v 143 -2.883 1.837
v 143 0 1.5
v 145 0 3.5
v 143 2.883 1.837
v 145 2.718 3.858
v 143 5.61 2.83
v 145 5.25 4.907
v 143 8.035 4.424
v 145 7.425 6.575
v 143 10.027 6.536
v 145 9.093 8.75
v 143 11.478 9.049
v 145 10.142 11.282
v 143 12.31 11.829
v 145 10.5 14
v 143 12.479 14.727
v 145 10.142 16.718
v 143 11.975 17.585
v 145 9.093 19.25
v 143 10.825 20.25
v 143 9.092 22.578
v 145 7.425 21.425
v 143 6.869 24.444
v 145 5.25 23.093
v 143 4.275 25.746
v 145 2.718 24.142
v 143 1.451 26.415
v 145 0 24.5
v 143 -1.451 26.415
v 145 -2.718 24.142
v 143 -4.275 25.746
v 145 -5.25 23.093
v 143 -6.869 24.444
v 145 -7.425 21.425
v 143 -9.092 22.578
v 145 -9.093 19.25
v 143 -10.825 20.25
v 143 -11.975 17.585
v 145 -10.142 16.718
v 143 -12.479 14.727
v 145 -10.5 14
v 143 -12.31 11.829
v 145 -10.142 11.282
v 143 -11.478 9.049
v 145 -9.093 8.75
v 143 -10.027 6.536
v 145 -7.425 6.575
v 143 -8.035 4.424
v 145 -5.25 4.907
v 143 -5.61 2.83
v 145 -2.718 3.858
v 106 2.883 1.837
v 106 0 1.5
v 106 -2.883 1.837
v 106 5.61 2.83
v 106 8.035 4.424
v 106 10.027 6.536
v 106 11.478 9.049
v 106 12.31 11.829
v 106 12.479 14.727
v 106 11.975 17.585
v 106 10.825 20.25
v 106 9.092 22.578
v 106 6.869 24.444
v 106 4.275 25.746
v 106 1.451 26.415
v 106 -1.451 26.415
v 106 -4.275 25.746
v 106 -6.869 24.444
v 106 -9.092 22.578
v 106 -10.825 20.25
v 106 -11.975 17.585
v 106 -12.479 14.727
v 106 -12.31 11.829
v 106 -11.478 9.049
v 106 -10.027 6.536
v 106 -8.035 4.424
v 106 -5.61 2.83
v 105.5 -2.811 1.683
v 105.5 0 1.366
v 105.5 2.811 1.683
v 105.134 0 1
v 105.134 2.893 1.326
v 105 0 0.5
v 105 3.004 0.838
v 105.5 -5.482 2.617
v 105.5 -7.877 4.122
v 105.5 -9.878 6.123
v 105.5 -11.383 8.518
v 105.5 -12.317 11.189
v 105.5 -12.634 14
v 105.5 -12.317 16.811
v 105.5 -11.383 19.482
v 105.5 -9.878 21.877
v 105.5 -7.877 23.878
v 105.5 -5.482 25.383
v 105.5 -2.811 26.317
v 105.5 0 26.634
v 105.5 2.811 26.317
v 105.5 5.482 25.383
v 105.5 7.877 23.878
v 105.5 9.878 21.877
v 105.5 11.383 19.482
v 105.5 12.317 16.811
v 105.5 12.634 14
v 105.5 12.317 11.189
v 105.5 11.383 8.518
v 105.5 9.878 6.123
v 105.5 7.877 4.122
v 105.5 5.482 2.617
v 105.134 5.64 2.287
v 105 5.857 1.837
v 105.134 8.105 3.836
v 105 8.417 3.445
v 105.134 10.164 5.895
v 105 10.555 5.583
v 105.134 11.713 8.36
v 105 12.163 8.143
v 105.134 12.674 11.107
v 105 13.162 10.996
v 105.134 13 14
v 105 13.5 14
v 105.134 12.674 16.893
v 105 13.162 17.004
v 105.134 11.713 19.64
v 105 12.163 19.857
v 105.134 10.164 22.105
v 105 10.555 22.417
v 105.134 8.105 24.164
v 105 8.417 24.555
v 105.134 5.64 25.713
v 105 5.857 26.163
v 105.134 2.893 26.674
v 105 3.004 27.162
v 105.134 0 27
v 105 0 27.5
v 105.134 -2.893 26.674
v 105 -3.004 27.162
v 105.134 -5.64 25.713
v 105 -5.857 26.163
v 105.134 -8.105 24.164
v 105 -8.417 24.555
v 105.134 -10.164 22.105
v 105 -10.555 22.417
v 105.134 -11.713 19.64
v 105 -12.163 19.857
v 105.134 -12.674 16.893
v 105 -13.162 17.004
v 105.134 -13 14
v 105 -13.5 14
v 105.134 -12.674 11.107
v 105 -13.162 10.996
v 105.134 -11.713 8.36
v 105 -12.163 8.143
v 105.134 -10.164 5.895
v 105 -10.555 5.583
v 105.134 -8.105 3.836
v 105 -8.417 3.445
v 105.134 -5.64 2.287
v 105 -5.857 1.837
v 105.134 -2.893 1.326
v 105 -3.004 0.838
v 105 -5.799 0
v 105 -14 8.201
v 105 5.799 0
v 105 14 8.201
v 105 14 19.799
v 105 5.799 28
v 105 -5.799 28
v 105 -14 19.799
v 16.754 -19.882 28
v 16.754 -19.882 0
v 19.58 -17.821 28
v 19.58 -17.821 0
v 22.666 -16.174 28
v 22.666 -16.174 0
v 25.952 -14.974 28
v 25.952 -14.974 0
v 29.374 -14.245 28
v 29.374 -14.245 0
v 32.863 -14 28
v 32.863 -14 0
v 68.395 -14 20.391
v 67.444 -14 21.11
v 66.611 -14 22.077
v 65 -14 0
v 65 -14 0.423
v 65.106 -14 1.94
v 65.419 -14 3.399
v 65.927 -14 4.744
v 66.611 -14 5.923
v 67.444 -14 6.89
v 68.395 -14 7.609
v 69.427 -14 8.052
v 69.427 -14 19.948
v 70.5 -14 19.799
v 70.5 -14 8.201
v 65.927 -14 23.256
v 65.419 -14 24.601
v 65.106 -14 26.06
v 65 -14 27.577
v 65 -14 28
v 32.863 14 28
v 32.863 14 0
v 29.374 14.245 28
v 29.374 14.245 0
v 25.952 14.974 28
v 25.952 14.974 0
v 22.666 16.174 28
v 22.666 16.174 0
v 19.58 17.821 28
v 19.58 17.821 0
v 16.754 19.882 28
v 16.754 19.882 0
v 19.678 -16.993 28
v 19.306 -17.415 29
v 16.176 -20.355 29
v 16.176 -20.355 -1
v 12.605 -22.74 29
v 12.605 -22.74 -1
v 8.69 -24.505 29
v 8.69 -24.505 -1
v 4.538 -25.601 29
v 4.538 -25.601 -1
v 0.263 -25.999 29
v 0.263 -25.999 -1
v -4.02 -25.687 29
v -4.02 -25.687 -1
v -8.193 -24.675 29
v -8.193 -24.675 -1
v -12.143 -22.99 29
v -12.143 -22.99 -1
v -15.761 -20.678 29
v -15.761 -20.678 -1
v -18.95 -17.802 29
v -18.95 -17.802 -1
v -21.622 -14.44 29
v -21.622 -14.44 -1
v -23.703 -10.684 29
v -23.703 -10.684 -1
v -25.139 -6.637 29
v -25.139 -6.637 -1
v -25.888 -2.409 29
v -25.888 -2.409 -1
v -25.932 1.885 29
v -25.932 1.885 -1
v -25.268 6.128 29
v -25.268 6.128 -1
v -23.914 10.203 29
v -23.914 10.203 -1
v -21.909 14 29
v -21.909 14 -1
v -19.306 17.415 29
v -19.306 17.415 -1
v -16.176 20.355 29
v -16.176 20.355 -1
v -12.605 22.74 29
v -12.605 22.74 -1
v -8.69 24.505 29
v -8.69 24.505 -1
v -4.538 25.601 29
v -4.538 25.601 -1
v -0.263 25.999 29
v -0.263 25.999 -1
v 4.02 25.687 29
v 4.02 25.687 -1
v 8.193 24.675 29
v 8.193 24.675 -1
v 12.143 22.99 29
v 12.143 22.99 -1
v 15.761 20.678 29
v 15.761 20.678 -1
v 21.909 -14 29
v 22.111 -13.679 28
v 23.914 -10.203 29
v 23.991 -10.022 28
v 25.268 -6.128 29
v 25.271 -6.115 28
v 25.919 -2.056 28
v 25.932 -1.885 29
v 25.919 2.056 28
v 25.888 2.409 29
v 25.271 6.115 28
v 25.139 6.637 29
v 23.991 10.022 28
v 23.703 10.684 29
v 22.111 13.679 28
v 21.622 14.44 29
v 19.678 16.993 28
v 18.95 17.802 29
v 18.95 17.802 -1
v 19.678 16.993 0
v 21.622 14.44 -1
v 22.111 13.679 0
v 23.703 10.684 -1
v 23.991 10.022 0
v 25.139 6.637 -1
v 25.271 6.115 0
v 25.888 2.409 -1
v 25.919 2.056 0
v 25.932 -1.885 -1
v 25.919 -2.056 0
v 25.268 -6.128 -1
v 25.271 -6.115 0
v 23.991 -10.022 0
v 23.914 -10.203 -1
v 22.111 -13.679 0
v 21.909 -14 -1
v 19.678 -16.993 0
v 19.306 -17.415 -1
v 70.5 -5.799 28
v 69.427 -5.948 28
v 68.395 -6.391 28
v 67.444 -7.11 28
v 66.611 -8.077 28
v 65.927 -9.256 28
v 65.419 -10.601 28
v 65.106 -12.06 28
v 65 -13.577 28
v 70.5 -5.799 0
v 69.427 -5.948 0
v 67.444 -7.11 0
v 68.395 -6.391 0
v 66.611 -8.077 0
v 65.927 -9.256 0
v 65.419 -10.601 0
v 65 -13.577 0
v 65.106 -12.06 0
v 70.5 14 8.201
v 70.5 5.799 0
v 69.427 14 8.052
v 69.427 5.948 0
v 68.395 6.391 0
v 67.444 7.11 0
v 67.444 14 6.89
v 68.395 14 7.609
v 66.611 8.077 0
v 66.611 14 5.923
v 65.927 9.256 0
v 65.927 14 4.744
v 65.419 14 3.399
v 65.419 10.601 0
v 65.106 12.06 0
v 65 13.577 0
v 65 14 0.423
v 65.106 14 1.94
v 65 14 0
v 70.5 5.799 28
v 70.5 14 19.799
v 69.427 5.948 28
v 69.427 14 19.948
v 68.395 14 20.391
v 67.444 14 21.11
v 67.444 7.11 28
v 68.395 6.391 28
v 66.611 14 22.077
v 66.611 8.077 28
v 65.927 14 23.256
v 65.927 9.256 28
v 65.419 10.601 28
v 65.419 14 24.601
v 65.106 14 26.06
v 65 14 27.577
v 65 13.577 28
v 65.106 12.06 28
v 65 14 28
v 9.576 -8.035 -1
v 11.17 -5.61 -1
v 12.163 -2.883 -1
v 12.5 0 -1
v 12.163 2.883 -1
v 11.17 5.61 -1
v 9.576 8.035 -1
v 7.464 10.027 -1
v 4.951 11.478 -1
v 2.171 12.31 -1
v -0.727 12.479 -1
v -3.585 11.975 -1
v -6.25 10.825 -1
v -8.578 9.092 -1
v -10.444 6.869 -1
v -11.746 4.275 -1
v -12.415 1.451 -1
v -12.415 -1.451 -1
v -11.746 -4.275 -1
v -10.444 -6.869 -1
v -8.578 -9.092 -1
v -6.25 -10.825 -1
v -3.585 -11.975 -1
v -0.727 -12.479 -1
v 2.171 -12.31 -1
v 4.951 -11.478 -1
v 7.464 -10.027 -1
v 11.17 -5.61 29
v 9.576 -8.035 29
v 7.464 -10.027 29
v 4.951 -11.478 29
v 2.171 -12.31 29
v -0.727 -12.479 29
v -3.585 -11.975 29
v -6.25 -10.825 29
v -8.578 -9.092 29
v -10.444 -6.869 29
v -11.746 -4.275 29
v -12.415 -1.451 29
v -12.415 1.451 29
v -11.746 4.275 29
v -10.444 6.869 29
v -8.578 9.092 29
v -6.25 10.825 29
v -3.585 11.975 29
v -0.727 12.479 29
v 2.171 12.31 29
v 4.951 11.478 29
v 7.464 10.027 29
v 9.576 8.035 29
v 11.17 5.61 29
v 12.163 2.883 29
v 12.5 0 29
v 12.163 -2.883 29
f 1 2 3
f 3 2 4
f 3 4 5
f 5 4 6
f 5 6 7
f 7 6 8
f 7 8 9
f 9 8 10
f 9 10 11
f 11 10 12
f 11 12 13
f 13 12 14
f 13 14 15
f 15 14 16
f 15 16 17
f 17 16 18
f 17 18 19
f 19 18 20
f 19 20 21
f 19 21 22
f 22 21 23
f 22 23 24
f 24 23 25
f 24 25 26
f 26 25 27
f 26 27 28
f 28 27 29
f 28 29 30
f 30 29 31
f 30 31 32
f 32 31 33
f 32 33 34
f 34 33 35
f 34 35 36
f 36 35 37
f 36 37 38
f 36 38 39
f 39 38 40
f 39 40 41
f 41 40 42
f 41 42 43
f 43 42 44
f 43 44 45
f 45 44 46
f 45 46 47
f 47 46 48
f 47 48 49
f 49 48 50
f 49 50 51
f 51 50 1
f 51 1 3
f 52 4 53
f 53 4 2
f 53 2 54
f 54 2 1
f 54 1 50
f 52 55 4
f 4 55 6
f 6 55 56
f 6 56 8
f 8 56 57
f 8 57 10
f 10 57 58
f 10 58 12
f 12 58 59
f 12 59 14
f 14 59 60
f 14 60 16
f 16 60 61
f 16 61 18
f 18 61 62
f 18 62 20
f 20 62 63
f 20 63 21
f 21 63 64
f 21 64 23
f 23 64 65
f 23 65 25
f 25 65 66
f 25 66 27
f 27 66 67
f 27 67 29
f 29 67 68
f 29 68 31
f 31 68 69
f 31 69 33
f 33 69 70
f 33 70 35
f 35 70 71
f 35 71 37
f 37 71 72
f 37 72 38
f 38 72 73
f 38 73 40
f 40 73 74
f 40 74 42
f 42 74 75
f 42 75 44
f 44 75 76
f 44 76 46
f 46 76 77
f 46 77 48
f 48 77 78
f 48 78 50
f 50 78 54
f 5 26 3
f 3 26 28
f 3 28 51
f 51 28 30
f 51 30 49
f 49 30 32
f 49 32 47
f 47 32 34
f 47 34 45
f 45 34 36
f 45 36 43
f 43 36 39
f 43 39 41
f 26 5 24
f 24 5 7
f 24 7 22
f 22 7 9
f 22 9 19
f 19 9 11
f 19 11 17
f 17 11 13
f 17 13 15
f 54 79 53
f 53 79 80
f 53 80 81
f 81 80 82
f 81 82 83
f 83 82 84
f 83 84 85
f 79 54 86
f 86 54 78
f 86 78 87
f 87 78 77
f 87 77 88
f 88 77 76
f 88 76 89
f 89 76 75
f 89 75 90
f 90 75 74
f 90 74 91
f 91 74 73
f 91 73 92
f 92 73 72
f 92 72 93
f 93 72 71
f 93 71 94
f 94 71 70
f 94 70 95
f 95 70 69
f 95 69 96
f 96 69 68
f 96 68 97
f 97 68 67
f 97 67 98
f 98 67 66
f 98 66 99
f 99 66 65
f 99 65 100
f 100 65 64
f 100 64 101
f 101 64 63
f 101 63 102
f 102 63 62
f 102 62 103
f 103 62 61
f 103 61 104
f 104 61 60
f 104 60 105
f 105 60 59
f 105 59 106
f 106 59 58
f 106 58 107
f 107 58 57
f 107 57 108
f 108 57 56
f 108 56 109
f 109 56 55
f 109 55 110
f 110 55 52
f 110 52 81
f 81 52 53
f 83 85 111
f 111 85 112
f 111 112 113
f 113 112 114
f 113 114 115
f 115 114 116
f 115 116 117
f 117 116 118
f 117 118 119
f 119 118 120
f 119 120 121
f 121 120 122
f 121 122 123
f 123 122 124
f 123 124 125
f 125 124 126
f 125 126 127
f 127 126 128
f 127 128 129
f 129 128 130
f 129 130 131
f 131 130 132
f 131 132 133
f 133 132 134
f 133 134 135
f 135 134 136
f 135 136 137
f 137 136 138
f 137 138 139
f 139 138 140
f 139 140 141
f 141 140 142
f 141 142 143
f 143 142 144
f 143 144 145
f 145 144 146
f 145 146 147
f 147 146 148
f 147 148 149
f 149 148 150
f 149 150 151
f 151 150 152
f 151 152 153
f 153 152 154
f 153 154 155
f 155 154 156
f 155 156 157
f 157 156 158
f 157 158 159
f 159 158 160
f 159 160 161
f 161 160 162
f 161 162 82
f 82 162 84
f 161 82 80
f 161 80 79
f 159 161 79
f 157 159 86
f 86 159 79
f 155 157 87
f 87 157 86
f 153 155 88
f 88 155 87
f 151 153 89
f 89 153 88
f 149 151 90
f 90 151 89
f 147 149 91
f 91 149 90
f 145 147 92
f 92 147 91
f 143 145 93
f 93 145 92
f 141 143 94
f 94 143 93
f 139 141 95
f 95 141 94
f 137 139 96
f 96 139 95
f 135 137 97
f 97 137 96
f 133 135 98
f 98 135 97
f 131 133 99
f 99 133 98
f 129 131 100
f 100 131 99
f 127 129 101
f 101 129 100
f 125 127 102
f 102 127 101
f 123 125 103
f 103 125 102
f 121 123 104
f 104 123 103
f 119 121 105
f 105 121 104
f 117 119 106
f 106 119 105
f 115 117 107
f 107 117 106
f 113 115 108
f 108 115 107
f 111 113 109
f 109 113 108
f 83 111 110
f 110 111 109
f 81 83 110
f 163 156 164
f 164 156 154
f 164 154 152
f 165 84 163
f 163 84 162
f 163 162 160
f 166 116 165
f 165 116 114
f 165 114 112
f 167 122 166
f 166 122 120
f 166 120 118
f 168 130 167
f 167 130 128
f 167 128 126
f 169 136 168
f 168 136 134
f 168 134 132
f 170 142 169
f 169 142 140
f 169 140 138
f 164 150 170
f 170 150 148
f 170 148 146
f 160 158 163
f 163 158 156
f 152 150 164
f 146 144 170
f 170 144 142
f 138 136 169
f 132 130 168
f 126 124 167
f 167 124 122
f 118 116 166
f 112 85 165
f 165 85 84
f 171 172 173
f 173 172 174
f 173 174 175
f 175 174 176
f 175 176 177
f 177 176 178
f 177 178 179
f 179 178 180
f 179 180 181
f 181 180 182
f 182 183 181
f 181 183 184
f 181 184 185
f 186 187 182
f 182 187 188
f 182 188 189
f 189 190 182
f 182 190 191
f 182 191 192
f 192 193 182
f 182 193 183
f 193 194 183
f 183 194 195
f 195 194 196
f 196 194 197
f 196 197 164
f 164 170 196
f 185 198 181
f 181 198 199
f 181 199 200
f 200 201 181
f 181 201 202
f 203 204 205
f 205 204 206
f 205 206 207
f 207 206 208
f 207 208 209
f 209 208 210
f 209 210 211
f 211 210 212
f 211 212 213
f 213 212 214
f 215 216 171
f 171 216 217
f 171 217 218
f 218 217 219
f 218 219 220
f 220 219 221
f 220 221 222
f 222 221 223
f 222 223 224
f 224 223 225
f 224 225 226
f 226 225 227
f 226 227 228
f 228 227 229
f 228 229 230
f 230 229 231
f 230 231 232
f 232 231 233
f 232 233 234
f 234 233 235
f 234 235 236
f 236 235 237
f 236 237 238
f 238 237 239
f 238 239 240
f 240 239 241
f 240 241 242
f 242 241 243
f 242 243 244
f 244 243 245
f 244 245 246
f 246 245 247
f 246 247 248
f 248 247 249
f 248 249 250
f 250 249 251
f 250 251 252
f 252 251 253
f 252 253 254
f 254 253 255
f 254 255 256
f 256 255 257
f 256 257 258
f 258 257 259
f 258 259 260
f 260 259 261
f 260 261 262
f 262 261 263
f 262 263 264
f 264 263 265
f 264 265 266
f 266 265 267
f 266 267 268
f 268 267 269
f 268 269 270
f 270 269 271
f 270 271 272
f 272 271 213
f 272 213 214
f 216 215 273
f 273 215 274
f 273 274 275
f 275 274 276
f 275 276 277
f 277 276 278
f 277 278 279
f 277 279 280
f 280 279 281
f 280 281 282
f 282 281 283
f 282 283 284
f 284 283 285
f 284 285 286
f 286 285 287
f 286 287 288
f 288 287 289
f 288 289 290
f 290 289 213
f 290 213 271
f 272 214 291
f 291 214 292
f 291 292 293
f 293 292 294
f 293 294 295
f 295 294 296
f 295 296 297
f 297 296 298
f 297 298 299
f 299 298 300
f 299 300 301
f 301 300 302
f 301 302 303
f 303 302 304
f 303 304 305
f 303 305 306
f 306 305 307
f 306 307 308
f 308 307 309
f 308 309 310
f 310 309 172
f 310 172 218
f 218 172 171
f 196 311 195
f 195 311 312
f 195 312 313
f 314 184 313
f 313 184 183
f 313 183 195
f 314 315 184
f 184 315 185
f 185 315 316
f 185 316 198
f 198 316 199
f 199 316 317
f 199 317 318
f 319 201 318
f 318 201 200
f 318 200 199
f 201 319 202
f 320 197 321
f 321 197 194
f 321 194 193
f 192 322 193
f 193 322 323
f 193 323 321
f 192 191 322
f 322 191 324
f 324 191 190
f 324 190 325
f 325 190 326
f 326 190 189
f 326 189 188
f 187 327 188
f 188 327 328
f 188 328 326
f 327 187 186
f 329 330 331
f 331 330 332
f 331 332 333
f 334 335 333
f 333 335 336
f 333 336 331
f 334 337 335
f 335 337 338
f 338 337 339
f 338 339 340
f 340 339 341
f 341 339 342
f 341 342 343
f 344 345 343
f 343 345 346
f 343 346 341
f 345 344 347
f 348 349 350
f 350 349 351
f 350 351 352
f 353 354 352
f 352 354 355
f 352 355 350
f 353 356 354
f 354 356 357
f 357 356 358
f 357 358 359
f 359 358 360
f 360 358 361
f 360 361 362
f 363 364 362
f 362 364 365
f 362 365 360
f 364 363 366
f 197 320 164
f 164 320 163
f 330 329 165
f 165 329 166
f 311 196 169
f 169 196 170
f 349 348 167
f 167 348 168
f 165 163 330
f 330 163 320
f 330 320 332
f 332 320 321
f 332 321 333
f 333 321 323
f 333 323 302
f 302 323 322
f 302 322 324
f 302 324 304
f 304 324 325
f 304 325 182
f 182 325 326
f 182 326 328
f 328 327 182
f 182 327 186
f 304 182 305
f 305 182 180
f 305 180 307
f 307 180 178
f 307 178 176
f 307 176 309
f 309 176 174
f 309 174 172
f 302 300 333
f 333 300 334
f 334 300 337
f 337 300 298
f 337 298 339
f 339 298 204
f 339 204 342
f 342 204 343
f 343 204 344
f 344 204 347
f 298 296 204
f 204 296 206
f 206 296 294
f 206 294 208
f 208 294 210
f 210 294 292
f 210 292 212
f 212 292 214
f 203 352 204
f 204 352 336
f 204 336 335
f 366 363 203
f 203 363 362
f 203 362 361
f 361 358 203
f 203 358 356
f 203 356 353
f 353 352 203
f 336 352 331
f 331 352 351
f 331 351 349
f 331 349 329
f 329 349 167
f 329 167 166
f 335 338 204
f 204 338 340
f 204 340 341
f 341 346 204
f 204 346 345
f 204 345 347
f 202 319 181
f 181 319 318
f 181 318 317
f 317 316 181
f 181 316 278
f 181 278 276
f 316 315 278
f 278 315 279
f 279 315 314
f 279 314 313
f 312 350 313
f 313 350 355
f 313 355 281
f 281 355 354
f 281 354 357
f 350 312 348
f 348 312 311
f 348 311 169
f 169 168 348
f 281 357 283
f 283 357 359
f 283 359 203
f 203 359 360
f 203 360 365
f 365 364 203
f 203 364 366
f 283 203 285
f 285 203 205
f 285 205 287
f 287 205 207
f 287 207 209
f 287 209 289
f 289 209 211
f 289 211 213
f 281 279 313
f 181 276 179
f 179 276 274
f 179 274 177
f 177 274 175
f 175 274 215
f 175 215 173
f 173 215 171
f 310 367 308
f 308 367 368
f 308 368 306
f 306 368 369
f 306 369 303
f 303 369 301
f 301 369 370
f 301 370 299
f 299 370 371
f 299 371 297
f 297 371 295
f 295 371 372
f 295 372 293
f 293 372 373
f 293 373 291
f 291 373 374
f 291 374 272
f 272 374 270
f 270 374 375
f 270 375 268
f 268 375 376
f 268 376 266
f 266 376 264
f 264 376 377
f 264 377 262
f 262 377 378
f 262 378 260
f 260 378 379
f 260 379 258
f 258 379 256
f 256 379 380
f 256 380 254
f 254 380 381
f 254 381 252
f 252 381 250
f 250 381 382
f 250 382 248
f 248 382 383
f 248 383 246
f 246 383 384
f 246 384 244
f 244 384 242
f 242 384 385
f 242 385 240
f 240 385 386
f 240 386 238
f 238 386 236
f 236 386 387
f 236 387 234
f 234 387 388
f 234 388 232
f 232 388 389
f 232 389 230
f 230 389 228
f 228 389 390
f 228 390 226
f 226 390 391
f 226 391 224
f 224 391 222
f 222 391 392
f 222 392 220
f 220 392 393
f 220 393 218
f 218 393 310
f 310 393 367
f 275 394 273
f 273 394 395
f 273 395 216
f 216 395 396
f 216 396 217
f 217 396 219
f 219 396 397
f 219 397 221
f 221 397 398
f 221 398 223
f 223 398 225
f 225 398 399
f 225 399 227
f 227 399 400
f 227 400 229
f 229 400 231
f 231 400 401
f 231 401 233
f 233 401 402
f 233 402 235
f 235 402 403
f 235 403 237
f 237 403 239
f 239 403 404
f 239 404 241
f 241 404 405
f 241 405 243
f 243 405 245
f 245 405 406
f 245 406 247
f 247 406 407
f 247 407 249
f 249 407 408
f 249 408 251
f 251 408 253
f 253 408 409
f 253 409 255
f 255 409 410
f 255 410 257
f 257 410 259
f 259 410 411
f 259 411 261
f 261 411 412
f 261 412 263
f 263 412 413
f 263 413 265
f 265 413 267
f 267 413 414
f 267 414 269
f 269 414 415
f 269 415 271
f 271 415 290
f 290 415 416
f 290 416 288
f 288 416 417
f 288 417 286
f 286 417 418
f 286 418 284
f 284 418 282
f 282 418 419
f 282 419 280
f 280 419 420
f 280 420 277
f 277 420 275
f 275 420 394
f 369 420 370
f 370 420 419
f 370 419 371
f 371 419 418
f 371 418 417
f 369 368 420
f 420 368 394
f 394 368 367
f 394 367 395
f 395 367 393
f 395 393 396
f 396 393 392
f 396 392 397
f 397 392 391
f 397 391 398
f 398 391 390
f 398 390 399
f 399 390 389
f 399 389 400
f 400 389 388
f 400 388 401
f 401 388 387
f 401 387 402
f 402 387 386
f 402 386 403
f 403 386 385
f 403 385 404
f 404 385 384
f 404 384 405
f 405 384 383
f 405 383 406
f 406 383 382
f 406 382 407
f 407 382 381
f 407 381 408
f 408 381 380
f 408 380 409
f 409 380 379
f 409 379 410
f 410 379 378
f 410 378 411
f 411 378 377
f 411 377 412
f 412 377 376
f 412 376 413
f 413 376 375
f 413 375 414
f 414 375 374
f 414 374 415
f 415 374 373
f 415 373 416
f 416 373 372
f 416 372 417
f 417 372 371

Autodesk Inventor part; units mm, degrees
ref_plane "YZ Plane" through (0, 0, 0) normal (1, 0, 0) x (0, 1, 0)
ref_plane "XZ Plane" through (0, 0, 0) normal (0, 1, 0) x (-1, 0, 0)
sketch "Sketch1" plane through (0, 0, 0) normal (0, 0, 1) x (1, 0, 0)
  arc A0 (21.9089, 14) -> (21.9089, -14) centre (0, 0) ccw
  circle A1 centre (0, 0) radius 12.5
  line L0 (21.9089, 14) -> (105, 14)
  line L1 (105, 14) -> (105, -14)
  line L2 (105, -14) -> (21.9089, -14)
  line L3 (-36.8957, 0) -> (84.4086, 0)
  dimension "d0" = 52
  dimension "d1" = 25
  dimension "d2" = 28
  dimension "d3" = 105
extrude "Extrusion1" add sketch "Sketch1" along normal blind 28
sketch "Sketch2" plane through (0, 0, 28) normal (0, 0, 1) x (1, 0, 0)
  arc A0 (21.9089, 14) -> (21.9089, -14) centre (0, 0) ccw projected
  circle A1 centre (0, 0) radius 26
  circle A2 centre (0, 0) radius 12.5 projected
  point P0 (21.9089, -14)
extrude "Extrusion2" add sketch "Sketch2" along normal blind 1
ref_plane "Work Plane1" through (0, 0, 14) normal (0, 0, 1) x (1, 0, 0)
mirror "Mirror2" about plane through (0, 0, 14) normal (0, 0, 1) of "Extrusion2"
sketch "Sketch3" plane through (105, -14, 0) normal (1, 0, 0) x (0, 0, -1)
  circle A0 centre (-14, 14) radius 12.5
  line L0 (0, 0) -> (0, 28) projected
  line L1 (0, 28) -> (-28, 28) projected
  point P0 (0, 14)
  point P1 (0, 14)
  point P2 (-14, 28)
  dimension "d8" = 25
extrude "Extrusion3" add sketch "Sketch3" along normal blind 40
sketch "Sketch4" plane through (105, -14, 0) normal (1, 0, 0) x (0, 0, -1)
  circle A0 centre (-14, 14) radius 12.5 projected
  line L0 (0, 0) -> (-28, 0) projected
  line L1 (-8.201, 0) -> (-19.799, 0)
  line L2 (-19.799, 0) -> (-28, 8.201)
  line L3 (-28, 8.201) -> (-28, 19.799)
  line L4 (-28, 19.799) -> (-19.799, 28)
  line L5 (-19.799, 28) -> (-8.201, 28)
  line L6 (-8.201, 28) -> (0, 19.799)
  line L7 (0, 19.799) -> (0, 8.201)
  line L8 (0, 8.201) -> (-8.201, 0)
  circle A1 centre (-14, 14) radius 12.5 projected
  line L9 (0, 0) -> (0, 28) projected
  line L10 (0, 28) -> (-28, 28) projected
  line L11 (-28, 0) -> (-28, 28) projected
  line L12 (0, 0) -> (-28, 0) projected
  point P0 (0, 14)
  point P1 (0, 8.201)
extrude "Extrusion4" cut sketch "Sketch4" against normal blind 40 contours L0 L8 L9 | L0 L11 L2 | L6 L10 L9 | L11 L10 L4
fillet "Fillet1" radius 5.5 4 edges at (65, 9.8995, 23.8995) (65, 9.8995, 4.1005) (65, -9.8995, 4.1005) (65, -9.8995, 23.8995)
fillet "Fillet2" radius 25 2 edges at (21.9089, 14, 14) (21.9089, -14, 14)
fillet "Fillet3" radius 1 1 edges at (105, 0, 26.5)
chamfer "Chamfer1" distance 2 angle 45 1 edges at (145, 0, 26.5)
properties part number "eye-end" material "Steel, Alloy"
